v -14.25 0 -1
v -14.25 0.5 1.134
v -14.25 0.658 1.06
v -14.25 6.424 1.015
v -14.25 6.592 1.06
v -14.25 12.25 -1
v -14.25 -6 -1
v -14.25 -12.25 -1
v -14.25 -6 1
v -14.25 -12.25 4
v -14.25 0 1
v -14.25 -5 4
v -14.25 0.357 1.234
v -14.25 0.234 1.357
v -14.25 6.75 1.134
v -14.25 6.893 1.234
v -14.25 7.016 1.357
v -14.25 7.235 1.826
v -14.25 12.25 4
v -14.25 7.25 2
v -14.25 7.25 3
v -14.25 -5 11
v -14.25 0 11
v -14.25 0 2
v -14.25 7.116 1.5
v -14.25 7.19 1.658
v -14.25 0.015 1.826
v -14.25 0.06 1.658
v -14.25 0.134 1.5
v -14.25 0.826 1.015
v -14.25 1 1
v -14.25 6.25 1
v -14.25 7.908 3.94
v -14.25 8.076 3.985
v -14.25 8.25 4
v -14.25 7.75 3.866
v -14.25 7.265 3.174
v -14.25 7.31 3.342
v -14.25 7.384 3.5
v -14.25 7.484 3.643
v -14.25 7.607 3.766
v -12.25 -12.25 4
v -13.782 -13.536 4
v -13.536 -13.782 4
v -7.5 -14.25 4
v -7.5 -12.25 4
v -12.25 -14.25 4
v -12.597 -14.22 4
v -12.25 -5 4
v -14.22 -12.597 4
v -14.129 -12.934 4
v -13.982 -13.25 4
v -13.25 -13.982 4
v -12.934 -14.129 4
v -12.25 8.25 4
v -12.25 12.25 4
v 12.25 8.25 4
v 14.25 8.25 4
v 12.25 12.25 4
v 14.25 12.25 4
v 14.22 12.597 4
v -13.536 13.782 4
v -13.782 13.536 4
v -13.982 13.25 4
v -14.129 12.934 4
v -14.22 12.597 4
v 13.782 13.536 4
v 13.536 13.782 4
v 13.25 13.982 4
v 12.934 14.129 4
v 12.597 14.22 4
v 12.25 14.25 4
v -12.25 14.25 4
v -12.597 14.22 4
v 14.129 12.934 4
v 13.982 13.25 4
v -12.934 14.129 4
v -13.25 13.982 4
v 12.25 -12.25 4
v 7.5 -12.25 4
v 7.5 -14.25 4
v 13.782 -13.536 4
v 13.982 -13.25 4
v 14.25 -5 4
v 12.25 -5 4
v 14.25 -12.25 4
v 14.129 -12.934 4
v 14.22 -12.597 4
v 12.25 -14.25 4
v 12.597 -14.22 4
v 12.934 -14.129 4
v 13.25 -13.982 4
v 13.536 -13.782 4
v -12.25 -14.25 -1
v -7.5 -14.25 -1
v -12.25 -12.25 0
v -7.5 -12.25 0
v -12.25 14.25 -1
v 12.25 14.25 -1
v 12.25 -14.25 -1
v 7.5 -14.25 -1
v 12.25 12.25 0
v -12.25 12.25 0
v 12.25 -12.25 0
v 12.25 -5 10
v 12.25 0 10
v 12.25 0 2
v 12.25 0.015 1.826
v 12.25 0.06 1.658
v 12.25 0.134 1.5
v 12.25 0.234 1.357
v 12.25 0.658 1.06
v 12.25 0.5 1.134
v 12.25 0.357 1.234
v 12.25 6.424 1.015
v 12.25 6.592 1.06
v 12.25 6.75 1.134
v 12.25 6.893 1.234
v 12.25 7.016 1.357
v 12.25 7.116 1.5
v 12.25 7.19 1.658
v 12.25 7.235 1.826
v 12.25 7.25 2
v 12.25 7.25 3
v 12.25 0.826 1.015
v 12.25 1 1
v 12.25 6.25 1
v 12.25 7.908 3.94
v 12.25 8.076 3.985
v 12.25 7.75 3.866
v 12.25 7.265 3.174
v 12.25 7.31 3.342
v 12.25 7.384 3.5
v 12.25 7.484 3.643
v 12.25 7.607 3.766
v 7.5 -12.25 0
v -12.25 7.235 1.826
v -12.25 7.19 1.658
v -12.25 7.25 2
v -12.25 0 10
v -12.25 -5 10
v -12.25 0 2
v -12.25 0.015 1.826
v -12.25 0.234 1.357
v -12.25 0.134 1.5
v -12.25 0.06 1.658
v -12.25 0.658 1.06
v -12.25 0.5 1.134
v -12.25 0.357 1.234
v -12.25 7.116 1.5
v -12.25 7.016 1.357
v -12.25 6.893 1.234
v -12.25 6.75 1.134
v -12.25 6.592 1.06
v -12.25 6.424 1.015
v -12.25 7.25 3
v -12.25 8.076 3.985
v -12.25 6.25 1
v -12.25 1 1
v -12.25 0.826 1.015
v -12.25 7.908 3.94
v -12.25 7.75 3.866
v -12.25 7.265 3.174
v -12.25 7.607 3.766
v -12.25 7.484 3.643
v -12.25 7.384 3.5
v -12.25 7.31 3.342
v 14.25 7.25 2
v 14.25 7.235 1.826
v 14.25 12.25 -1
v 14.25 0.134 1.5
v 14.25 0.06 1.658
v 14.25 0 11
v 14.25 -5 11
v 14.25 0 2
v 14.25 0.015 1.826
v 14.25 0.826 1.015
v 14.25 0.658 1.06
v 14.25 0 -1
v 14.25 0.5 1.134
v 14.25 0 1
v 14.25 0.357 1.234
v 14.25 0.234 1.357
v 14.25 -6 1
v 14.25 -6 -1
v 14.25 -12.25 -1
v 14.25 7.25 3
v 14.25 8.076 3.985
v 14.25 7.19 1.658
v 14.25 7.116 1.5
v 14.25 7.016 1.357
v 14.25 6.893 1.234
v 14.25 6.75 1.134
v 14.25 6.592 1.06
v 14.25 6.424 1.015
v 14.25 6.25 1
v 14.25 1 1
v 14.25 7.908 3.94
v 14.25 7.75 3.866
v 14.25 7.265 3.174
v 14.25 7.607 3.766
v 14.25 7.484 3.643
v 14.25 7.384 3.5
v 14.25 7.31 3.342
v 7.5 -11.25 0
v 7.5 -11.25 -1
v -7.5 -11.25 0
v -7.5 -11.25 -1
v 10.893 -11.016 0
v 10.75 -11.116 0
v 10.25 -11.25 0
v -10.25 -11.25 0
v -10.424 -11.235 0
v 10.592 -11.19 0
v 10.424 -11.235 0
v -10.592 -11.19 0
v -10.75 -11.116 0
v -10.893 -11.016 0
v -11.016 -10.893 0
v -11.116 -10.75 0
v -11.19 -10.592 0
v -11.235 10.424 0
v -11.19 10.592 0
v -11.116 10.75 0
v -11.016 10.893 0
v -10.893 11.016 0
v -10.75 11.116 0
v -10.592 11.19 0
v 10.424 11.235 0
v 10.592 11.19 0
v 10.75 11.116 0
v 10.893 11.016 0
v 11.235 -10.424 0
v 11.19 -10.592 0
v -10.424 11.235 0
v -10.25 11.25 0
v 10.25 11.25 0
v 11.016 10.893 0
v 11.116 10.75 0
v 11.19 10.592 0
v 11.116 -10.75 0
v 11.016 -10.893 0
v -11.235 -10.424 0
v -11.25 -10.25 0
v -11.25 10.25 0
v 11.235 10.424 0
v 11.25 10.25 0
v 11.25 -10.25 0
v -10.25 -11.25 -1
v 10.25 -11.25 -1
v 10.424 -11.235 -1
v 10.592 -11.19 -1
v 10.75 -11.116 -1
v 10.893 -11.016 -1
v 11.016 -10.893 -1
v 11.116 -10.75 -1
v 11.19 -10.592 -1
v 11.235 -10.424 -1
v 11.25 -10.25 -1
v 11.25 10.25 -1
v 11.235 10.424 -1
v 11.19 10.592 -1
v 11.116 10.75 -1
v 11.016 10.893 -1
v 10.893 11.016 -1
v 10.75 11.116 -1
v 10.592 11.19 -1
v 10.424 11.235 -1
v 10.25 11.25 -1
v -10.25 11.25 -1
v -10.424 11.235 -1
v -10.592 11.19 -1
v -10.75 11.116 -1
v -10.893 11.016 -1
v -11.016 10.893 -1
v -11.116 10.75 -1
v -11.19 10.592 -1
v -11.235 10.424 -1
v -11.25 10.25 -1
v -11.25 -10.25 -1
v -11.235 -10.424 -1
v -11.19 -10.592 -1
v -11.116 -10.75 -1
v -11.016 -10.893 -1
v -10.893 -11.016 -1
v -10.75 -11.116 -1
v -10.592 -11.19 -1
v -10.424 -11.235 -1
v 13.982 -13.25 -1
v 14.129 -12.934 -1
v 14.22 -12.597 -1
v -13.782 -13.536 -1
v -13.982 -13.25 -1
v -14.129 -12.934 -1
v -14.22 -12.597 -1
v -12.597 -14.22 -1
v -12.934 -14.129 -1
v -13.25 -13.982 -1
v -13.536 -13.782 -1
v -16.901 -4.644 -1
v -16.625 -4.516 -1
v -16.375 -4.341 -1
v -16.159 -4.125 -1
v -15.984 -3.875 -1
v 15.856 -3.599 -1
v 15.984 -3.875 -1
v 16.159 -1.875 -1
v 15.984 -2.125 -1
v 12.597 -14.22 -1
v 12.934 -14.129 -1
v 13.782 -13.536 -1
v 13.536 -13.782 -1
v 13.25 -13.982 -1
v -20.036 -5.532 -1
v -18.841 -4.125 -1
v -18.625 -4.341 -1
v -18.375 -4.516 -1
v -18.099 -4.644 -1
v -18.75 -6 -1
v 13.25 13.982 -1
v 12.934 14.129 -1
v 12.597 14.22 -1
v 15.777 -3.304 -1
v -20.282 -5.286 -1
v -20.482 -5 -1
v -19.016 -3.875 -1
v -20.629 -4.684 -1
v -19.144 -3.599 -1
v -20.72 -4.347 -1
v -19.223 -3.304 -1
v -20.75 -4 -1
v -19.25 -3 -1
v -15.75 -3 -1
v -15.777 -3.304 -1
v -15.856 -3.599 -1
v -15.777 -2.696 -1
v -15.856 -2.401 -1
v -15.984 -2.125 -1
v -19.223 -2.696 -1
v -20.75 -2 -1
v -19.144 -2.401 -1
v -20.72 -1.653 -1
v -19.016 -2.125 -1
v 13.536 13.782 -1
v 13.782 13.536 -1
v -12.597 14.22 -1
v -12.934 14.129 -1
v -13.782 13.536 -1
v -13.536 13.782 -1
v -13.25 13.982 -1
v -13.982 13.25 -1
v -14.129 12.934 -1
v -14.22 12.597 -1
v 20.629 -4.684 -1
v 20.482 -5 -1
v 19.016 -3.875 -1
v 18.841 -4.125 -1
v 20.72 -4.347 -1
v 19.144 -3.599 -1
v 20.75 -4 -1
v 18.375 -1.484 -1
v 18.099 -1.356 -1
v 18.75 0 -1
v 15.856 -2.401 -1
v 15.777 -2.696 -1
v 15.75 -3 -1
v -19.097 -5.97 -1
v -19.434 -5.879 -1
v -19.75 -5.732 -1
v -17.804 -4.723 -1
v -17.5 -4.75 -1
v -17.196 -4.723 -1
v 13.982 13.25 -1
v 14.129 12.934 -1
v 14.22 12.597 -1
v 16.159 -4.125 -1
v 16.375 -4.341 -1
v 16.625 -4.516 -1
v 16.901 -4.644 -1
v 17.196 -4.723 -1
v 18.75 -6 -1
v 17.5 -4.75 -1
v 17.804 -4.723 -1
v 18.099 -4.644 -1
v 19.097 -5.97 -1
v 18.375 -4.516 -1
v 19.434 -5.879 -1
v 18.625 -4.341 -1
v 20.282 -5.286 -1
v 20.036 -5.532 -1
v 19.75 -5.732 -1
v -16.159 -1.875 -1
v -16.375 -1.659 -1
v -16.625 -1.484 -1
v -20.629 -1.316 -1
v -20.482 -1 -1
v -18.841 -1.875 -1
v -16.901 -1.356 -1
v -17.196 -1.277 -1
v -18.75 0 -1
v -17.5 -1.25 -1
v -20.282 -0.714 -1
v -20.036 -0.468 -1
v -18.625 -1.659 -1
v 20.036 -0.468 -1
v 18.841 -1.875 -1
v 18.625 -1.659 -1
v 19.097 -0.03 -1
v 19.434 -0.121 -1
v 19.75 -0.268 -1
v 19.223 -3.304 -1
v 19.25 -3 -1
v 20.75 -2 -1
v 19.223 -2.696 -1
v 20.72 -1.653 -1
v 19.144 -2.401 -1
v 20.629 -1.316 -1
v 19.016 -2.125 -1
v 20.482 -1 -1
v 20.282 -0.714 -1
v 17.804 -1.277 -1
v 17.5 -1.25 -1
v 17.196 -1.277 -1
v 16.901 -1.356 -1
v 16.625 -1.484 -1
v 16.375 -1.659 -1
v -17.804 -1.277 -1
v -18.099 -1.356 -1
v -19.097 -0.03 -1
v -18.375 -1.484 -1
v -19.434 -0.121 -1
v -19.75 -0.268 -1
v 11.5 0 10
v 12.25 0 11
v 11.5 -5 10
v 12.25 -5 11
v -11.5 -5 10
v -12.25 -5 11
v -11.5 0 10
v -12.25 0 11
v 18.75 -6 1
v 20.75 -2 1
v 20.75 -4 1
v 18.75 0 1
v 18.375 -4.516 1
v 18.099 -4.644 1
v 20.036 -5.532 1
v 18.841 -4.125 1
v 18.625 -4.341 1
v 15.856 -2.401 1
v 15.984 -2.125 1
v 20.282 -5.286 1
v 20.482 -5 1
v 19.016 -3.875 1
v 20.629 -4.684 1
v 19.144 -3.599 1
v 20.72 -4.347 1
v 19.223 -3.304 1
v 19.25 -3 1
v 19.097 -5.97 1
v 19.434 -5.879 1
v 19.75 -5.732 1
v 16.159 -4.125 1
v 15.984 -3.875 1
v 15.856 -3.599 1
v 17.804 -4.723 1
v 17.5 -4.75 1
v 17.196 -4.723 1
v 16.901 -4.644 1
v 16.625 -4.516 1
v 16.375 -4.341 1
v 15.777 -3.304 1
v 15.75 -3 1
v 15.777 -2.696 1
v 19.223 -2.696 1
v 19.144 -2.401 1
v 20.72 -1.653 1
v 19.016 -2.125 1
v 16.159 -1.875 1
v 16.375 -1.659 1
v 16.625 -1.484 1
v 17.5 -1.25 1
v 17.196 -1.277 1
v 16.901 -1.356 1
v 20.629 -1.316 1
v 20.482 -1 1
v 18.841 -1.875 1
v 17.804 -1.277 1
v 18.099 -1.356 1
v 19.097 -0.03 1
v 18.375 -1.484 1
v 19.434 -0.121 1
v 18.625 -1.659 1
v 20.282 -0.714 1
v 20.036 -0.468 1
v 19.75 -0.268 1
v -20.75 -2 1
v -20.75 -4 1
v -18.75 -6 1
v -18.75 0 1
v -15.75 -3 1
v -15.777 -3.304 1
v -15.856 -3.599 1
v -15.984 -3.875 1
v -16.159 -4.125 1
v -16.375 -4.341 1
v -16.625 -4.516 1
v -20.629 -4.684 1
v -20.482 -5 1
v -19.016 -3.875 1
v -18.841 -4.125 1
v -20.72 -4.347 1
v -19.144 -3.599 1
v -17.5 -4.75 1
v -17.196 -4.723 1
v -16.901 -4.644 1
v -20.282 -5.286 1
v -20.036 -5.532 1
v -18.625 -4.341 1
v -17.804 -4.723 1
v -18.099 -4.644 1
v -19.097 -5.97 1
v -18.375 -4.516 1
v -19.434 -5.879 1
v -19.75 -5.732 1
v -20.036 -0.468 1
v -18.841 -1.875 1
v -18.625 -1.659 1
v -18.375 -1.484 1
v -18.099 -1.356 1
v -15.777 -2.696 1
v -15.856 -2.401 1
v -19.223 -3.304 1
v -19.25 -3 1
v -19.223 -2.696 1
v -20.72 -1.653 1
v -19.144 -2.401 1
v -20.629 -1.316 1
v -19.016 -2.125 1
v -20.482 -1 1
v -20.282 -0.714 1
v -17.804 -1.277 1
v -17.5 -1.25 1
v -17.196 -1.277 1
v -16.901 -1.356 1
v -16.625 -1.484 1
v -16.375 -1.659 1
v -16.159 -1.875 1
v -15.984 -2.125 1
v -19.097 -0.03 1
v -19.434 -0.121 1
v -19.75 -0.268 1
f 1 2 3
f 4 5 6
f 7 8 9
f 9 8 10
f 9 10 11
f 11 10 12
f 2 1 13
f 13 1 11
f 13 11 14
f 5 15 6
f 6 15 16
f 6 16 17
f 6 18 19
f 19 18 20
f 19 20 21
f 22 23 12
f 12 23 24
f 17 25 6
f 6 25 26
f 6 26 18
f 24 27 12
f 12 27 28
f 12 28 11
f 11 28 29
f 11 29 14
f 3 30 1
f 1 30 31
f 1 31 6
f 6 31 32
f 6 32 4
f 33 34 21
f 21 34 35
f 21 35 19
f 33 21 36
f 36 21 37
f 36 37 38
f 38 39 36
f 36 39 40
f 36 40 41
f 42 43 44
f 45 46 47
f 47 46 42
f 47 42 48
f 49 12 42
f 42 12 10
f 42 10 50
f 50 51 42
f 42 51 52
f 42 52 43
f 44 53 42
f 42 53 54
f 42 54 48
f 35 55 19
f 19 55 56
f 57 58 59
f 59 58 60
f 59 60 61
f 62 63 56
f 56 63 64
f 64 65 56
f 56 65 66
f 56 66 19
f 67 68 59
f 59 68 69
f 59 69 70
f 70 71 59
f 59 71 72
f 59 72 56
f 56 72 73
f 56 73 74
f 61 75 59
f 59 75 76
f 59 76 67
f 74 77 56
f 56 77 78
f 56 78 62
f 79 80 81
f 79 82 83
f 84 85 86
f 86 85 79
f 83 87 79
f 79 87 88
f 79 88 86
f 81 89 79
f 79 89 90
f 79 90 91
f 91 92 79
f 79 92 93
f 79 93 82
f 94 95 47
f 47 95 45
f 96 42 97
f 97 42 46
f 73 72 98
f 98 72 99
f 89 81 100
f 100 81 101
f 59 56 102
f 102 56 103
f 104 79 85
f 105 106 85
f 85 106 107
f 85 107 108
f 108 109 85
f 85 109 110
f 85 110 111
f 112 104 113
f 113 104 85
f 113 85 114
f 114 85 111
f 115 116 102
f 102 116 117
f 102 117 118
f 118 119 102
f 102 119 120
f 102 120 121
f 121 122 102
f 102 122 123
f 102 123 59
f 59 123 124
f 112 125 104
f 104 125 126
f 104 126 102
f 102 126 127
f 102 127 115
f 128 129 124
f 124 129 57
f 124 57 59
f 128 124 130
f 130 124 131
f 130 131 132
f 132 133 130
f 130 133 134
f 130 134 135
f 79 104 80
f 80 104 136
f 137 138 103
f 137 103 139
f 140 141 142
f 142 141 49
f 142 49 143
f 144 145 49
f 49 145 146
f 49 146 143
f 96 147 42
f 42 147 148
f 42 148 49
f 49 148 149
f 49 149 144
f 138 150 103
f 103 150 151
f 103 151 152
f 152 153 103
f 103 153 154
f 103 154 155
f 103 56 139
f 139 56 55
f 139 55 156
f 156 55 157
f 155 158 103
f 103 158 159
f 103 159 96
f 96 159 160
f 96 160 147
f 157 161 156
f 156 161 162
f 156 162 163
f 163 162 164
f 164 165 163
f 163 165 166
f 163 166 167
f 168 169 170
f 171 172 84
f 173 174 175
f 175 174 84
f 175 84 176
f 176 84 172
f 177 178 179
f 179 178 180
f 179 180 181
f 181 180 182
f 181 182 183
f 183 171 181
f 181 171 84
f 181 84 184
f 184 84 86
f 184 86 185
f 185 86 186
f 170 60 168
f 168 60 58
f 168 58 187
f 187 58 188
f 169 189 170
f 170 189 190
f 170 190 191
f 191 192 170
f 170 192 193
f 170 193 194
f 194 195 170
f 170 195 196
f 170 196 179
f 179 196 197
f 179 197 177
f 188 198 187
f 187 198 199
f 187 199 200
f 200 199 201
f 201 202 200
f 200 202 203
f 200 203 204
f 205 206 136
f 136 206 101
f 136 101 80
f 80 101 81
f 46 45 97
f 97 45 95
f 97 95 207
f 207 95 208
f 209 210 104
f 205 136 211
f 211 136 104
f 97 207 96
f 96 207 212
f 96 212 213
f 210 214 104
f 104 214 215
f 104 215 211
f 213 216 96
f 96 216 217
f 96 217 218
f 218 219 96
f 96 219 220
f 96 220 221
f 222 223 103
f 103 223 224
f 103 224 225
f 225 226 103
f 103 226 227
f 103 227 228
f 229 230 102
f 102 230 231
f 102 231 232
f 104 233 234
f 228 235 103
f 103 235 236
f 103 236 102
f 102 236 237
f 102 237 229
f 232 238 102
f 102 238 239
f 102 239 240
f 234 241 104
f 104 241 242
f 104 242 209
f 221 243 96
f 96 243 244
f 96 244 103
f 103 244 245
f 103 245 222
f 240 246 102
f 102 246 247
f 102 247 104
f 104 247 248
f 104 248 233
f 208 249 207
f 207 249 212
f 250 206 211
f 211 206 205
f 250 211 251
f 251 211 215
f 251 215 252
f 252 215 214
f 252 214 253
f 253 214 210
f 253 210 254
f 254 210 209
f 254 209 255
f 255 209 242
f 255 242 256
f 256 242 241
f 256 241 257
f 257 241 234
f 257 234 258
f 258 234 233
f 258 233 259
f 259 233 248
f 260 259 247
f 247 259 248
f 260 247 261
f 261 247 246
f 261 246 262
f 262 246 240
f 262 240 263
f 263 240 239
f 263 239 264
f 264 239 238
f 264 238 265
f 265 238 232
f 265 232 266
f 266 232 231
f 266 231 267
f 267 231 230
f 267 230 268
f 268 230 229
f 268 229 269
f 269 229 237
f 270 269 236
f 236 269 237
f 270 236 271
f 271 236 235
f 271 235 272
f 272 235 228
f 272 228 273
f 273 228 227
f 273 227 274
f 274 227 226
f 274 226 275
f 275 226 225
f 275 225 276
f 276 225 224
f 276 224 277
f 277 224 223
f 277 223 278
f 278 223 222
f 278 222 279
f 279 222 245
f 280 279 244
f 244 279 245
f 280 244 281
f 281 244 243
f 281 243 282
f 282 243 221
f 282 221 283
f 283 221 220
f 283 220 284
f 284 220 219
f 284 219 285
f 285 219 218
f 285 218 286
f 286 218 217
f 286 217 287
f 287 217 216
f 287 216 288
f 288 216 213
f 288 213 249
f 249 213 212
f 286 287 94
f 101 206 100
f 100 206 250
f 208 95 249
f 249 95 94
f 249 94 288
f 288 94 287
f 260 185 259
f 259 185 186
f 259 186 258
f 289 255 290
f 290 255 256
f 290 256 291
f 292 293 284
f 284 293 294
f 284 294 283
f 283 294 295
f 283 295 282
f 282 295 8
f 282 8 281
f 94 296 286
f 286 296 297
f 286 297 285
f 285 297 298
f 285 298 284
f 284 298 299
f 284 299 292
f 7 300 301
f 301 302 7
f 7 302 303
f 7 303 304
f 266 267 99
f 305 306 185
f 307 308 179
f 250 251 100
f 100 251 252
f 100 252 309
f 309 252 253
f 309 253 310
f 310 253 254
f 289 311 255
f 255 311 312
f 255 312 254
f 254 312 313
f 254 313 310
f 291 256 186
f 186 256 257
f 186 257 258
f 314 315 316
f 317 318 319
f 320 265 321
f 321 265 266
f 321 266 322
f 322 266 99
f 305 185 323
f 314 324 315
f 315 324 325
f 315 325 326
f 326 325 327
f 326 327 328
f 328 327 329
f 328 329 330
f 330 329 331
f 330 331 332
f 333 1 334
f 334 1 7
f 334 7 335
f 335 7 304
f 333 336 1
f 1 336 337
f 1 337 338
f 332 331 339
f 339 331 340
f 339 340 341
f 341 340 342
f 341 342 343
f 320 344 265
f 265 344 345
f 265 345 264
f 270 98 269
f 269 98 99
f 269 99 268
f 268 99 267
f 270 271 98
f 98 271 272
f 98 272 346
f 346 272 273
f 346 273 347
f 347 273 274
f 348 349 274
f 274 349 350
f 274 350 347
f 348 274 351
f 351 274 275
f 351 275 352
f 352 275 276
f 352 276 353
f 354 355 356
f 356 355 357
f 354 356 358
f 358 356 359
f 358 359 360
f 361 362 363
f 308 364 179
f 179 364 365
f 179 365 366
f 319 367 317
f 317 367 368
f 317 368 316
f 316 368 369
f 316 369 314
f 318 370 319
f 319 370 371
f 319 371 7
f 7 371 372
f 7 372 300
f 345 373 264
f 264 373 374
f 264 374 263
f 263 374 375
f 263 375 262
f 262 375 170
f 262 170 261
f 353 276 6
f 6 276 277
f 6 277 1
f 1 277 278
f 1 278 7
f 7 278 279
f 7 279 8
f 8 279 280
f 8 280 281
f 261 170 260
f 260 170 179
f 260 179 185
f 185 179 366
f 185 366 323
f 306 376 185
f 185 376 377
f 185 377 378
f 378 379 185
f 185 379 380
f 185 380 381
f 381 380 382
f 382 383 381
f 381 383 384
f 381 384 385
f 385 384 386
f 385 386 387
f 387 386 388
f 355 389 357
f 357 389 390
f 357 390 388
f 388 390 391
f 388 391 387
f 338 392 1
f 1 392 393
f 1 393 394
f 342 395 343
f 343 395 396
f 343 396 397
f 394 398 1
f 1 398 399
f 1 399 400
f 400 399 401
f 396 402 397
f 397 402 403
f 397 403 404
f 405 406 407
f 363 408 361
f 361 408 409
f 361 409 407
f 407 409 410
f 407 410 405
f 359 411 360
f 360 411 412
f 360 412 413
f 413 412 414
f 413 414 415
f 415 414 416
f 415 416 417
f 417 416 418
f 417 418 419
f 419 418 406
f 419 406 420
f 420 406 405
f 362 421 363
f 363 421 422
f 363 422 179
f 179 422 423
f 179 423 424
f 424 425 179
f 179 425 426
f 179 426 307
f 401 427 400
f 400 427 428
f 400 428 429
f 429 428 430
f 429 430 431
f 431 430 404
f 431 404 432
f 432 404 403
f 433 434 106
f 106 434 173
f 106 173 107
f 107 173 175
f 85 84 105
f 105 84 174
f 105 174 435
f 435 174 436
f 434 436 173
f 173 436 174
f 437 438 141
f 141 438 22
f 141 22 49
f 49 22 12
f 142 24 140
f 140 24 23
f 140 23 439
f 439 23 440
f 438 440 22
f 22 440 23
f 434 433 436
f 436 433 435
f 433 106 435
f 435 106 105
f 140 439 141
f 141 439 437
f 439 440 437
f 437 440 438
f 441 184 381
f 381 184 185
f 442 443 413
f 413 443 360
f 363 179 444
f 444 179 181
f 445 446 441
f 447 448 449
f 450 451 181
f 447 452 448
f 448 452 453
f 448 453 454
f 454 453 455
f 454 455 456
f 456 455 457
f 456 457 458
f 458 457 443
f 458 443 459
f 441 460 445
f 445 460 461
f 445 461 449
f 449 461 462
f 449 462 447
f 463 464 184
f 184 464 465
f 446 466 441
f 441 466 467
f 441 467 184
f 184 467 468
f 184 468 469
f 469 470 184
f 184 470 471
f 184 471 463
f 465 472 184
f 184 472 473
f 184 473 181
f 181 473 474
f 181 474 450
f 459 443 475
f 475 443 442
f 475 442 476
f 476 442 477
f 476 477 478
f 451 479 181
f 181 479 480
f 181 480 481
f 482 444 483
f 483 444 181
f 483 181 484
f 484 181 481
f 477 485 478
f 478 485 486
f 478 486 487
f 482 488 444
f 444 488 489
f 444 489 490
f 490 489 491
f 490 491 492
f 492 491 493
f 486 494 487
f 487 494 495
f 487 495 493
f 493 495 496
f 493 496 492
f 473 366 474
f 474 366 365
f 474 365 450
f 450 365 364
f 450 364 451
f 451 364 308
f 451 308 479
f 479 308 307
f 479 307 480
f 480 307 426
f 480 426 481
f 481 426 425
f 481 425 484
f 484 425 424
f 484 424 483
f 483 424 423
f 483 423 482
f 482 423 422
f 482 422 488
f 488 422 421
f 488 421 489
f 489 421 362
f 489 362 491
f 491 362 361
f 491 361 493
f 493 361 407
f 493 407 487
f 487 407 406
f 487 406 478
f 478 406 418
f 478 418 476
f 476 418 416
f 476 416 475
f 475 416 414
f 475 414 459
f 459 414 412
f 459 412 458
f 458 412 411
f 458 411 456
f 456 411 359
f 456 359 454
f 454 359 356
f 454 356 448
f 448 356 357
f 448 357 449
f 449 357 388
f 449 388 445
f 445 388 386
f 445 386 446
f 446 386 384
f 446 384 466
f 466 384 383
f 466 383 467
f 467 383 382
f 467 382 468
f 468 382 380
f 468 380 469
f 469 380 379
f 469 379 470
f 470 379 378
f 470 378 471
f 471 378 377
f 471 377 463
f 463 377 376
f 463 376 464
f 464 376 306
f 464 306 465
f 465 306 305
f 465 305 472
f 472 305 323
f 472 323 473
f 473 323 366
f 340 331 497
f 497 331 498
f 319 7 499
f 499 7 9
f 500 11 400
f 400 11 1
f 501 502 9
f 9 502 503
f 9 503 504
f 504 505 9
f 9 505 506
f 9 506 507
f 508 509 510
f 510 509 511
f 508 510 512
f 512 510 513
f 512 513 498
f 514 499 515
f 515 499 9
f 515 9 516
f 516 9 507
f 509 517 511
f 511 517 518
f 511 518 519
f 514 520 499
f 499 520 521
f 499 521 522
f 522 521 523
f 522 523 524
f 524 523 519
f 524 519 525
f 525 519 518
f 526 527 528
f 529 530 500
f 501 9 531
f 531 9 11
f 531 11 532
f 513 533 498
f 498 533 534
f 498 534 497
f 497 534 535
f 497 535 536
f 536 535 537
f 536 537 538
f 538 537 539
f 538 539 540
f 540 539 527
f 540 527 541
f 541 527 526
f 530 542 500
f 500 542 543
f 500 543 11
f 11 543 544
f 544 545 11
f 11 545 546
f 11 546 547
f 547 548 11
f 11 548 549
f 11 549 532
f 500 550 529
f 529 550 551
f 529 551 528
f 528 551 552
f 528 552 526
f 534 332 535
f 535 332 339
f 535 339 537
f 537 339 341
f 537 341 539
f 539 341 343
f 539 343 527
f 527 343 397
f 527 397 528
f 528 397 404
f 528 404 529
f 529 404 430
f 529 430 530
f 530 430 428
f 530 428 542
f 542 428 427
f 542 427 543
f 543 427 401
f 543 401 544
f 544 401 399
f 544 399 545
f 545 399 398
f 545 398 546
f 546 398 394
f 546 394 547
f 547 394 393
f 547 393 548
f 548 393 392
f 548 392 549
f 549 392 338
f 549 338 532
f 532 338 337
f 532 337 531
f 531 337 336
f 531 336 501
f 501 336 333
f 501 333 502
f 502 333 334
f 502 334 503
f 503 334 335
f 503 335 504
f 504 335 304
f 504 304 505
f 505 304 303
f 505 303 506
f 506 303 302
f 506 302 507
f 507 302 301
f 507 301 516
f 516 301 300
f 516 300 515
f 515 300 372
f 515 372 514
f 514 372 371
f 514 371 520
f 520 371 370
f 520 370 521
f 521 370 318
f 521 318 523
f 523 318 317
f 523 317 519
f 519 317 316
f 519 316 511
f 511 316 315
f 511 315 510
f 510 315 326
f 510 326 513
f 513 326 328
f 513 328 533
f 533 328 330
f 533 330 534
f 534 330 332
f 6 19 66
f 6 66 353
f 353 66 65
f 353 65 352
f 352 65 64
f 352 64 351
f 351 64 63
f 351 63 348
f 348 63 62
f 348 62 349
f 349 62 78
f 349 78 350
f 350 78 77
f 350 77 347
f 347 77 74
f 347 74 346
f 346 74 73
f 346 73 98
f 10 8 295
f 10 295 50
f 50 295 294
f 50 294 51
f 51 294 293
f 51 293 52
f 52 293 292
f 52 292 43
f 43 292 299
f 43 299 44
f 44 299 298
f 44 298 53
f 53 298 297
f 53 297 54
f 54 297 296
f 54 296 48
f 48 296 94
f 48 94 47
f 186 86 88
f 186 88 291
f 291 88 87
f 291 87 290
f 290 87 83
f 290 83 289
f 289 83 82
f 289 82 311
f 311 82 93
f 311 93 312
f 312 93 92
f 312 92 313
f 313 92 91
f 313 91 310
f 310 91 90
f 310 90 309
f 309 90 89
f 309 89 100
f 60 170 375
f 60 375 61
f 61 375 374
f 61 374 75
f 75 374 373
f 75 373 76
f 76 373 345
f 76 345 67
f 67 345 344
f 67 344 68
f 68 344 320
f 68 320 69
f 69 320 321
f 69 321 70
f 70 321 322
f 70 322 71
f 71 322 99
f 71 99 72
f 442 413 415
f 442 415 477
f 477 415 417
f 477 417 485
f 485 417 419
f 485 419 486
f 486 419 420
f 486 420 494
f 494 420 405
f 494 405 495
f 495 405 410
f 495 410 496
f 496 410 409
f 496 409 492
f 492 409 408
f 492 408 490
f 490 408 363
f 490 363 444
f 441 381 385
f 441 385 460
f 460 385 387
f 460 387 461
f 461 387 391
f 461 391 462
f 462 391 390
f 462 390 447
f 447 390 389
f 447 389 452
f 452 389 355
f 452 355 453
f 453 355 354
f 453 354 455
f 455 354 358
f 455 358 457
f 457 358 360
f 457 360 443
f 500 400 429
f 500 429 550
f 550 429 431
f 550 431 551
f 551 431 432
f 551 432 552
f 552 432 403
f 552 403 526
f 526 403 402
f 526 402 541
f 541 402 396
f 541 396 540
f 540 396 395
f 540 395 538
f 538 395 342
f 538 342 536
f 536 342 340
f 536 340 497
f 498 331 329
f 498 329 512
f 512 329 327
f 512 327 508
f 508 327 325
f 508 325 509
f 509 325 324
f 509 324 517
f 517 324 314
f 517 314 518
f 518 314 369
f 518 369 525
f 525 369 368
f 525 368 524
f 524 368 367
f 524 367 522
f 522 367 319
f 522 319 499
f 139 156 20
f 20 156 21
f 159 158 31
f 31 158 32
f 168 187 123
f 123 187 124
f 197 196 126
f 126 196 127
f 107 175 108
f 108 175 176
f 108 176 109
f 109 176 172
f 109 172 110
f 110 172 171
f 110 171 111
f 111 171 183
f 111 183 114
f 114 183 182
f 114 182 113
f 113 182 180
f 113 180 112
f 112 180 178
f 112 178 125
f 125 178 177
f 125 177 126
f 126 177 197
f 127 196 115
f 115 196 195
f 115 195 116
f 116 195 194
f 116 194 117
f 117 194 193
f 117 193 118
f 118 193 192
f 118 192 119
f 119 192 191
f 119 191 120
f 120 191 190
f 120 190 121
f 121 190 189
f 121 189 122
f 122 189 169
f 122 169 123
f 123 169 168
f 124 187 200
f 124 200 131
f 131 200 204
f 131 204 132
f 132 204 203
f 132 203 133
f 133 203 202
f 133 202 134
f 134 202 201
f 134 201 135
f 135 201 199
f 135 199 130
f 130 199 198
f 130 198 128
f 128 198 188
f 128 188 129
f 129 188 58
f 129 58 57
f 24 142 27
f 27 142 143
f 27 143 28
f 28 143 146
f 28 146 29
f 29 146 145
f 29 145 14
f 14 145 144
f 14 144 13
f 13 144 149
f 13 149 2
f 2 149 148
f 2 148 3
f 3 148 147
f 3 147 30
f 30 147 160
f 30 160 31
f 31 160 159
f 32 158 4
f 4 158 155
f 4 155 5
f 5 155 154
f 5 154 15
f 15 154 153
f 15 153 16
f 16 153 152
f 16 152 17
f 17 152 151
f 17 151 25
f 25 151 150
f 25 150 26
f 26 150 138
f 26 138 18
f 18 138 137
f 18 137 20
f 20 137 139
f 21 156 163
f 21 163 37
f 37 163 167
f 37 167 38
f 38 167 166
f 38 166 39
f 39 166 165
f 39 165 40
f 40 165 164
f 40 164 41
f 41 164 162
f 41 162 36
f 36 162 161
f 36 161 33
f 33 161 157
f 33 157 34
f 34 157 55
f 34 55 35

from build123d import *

# Parameters (mm, degrees)
SKETCH_1_W          = 28.5
SKETCH_1_H          = 28.5
SKETCH_1_W_2        = 24.5
SKETCH_1_H_2        = 24.5
EXTRUDE_1_DEPTH     = 4
CUT_EXTRUDE_1_REACH = 34.114
SKETCH_2_W          = 15
SKETCH_2_H          = 4
EXTRUDE_2_DEPTH     = 1
SKETCH_4_W          = 2
SKETCH_4_H          = 5
EXTRUDE_3_DEPTH     = 7
EXTRUDE_7_DEPTH     = 5
SKETCH_6_W          = 6.5
SKETCH_6_H          = 6
SKETCH_6_R          = 1.75
EXTRUDE_6_DEPTH     = 2
FILLET_1_R          = 2
SKETCH_8_W          = 3
SKETCH_8_H          = 7.25
CUT_EXTRUDE_3_DEPTH = 40.358131307
FILLET_2_R          = 1


with BuildPart() as part:
    # ｽｹｯﾁ1 → ﾎﾞｽ - 押し出し1 (new body)
    with BuildSketch(Plane.XY):
        Rectangle(SKETCH_1_W, SKETCH_1_H)
        Rectangle(SKETCH_1_W_2, SKETCH_1_H_2, mode=Mode.SUBTRACT)
    extrude(amount=EXTRUDE_1_DEPTH)

    # ｽｹｯﾁ2 → ｶｯﾄ - 押し出し1 (cut, up to next)
    with BuildSketch(Plane(origin=(0, -14.25, 0), x_dir=(-1, 0, 0), z_dir=(0, -1, 0)), mode=Mode.PRIVATE) as cut_extrude_1_sk1:
        with Locations((0, -2)):
            Rectangle(SKETCH_2_W, SKETCH_2_H)
    cut_extrude_1_tool1 = extrude(cut_extrude_1_sk1.sketch, amount=-CUT_EXTRUDE_1_REACH, mode=Mode.PRIVATE) & part.part
    add(cut_extrude_1_tool1.solids().sort_by_distance((0, -14.25, 2))[0], mode=Mode.SUBTRACT)

    # ｽｹｯﾁ3 → ﾎﾞｽ - 押し出し2 (add)
    with BuildSketch(Plane(origin=(0, 0, 0), x_dir=(-1, 0, 0), z_dir=(0, 0, -1))):
        Polygon((12.25, 12.25), (12.25, -12.25), (7.5, -12.25), (7.5, -14.25), (14.25, -14.25), (14.25, 14.25), (-14.25, 14.25), (-14.25, -14.25), (-7.5, -14.25), (-7.5, -12.25), (-12.25, -12.25), (-12.25, 12.25), align=None)
        with BuildLine():
            Line((12.25, -12.25), (12.25, -10.25))
            ThreePointArc((12.25, -10.25), (11.664213562, -11.664213562), (10.25, -12.25))
            Line((10.25, -12.25), (12.25, -12.25))
        make_face()
        with BuildLine():
            Line((-7.5, -12.25), (-7.5, -11.25))
            Line((-7.5, -11.25), (-10.25, -11.25))
            ThreePointArc((-10.25, -11.25), (-10.957106781, -10.957106781), (-11.25, -10.25))
            Line((-11.25, -10.25), (-11.25, 10.25))
            ThreePointArc((-11.25, 10.25), (-10.957106781, 10.957106781), (-10.25, 11.25))
            Line((-10.25, 11.25), (10.25, 11.25))
            ThreePointArc((10.25, 11.25), (10.957106781, 10.957106781), (11.25, 10.25))
            Line((11.25, 10.25), (11.25, -10.25))
            ThreePointArc((11.25, -10.25), (10.957106781, -10.957106781), (10.25, -11.25))
            Line((10.25, -11.25), (7.5, -11.25))
            Line((7.5, -11.25), (7.5, -12.25))
            Line((7.5, -12.25), (10.25, -12.25))
            ThreePointArc((10.25, -12.25), (11.664213562, -11.664213562), (12.25, -10.25))
            Line((12.25, -10.25), (12.25, 10.25))
            ThreePointArc((12.25, 10.25), (11.664213562, 11.664213562), (10.25, 12.25))
            Line((10.25, 12.25), (-10.25, 12.25))
            ThreePointArc((-10.25, 12.25), (-11.664213562, 11.664213562), (-12.25, 10.25))
            Line((-12.25, 10.25), (-12.25, -10.25))
            ThreePointArc((-12.25, -10.25), (-11.664213562, -11.664213562), (-10.25, -12.25))
            Line((-10.25, -12.25), (-7.5, -12.25))
        make_face()
        with BuildLine():
            Line((-12.25, -12.25), (-10.25, -12.25))
            ThreePointArc((-10.25, -12.25), (-11.664213562, -11.664213562), (-12.25, -10.25))
            Line((-12.25, -10.25), (-12.25, -12.25))
        make_face()
        with BuildLine():
            Line((-12.25, 12.25), (-12.25, 10.25))
            ThreePointArc((-12.25, 10.25), (-11.664213562, 11.664213562), (-10.25, 12.25))
            Line((-10.25, 12.25), (-12.25, 12.25))
        make_face()
        with BuildLine():
            Line((12.25, 12.25), (10.25, 12.25))
            ThreePointArc((10.25, 12.25), (11.664213562, 11.664213562), (12.25, 10.25))
            Line((12.25, 10.25), (12.25, 12.25))
        make_face()
    extrude(amount=EXTRUDE_2_DEPTH)

    # ｽｹｯﾁ4 → ﾎﾞｽ - 押し出し3 (add)
    with BuildSketch(Plane.XY.offset(4)):
        with Locations((13.25, -2.5)):
            Rectangle(SKETCH_4_W, SKETCH_4_H)
        with Locations((-13.25, -2.5)):
            Rectangle(SKETCH_4_W, SKETCH_4_H)
    extrude(amount=EXTRUDE_3_DEPTH)

    # ｽｹｯﾁ5 → ﾎﾞｽ - 押し出し7 (add)
    with BuildSketch(Plane(origin=(0, 0, 0), x_dir=(1, 0, 0), z_dir=(0, 1, 0))):
        Polygon((12.25, -11), (11.5, -10), (12.25, -10), align=None)
        Polygon((-12.25, -11), (-11.5, -10), (-12.25, -10), align=None)
    extrude(amount=-EXTRUDE_7_DEPTH)

    # ｽｹｯﾁ6 → ﾎﾞｽ - 押し出し6 (add)
    # profile 1 of 2: a face of its own
    with BuildSketch(Plane(origin=(0, 0, -1), x_dir=(-1, 0, 0), z_dir=(0, 0, -1))):
        with Locations((17.5, -3)):
            Rectangle(SKETCH_6_W, SKETCH_6_H)
        with Locations((17.5, -3)):
            Circle(SKETCH_6_R, mode=Mode.SUBTRACT)
    # profile 2 of 2: a face of its own
    with BuildSketch(Plane(origin=(0, 0, -1), x_dir=(-1, 0, 0), z_dir=(0, 0, -1))):
        with Locations((-17.5, -3)):
            Rectangle(SKETCH_6_W, SKETCH_6_H)
        with Locations((-17.5, -3)):
            Circle(SKETCH_6_R, mode=Mode.SUBTRACT)
    extrude(amount=-EXTRUDE_6_DEPTH)

    # ﾌｨﾚｯﾄ1
    fillet_1_edges = [part.edges().sort_by_distance(p)[0] for p in [
        (20.75, -6, 0),
        (20.75, 0, 0),
        (-20.75, 0, 0),
        (-20.75, -6, 0),
        (14.25, 14.25, 1.5),
        (14.25, -14.25, 1.5),
        (-14.25, -14.25, 1.5),
        (-14.25, 14.25, 1.5),
    ]]
    fillet(fillet_1_edges, radius=FILLET_1_R)

    # ｽｹｯﾁ8 → ｶｯﾄ - 押し出し3 (cut, through all)
    with BuildSketch(Plane.ZY.offset(14.25)):
        with Locations((2.5, 3.625)):
            Rectangle(SKETCH_8_W, SKETCH_8_H)
    extrude(amount=-CUT_EXTRUDE_3_DEPTH, mode=Mode.SUBTRACT)

    # ﾌｨﾚｯﾄ2
    # the kernel refuses this fillet: 1 mm, written as the material it adds along each edge
    with BuildSketch(Plane(origin=(12.25, 7.25, 1), x_dir=(0, -1, 0), z_dir=(1, 0, 0))) as fillet_2_piece_1:
        with BuildLine():
            CenterArc((FILLET_2_R, -FILLET_2_R), FILLET_2_R, 90, 90)
            Line((0, -FILLET_2_R), (0, 0))
            Line((0, 0), (FILLET_2_R, 0))
        make_face()
    extrude(amount=2)
    with BuildSketch(Plane(origin=(12.25, 0, 1), x_dir=(0, 1, 0), z_dir=(1, 0, 0)), Plane(origin=(-14.25, 0, 1), x_dir=(0, 1, 0), z_dir=(1, 0, 0)), Plane(origin=(-14.25, 7.25, 1), x_dir=(0, 0, 1), z_dir=(1, 0, 0))) as fillet_2_piece_2:
        with BuildLine():
            CenterArc((FILLET_2_R, FILLET_2_R), FILLET_2_R, 180, 90)
            Line((0, FILLET_2_R), (0, 0))
            Line((0, 0), (FILLET_2_R, 0))
        make_face()
    extrude(amount=2)
    # the kernel refuses this fillet: 1 mm, written as the material it takes off along each edge
    with BuildSketch(Plane(origin=(9.75, 7.25, 4), x_dir=(0, 1, 0), z_dir=(1, 0, 0)), Plane(origin=(-16.75, 7.25, 4), x_dir=(0, 1, 0), z_dir=(1, 0, 0))) as fillet_2_2_piece_1:
        with BuildLine():
            CenterArc((FILLET_2_R, -FILLET_2_R), FILLET_2_R, 90, 90)
            Line((0, -FILLET_2_R), (0, 0))
            Line((0, 0), (FILLET_2_R, 0))
        make_face()
    extrude(amount=7, mode=Mode.SUBTRACT)


solid = part.part
